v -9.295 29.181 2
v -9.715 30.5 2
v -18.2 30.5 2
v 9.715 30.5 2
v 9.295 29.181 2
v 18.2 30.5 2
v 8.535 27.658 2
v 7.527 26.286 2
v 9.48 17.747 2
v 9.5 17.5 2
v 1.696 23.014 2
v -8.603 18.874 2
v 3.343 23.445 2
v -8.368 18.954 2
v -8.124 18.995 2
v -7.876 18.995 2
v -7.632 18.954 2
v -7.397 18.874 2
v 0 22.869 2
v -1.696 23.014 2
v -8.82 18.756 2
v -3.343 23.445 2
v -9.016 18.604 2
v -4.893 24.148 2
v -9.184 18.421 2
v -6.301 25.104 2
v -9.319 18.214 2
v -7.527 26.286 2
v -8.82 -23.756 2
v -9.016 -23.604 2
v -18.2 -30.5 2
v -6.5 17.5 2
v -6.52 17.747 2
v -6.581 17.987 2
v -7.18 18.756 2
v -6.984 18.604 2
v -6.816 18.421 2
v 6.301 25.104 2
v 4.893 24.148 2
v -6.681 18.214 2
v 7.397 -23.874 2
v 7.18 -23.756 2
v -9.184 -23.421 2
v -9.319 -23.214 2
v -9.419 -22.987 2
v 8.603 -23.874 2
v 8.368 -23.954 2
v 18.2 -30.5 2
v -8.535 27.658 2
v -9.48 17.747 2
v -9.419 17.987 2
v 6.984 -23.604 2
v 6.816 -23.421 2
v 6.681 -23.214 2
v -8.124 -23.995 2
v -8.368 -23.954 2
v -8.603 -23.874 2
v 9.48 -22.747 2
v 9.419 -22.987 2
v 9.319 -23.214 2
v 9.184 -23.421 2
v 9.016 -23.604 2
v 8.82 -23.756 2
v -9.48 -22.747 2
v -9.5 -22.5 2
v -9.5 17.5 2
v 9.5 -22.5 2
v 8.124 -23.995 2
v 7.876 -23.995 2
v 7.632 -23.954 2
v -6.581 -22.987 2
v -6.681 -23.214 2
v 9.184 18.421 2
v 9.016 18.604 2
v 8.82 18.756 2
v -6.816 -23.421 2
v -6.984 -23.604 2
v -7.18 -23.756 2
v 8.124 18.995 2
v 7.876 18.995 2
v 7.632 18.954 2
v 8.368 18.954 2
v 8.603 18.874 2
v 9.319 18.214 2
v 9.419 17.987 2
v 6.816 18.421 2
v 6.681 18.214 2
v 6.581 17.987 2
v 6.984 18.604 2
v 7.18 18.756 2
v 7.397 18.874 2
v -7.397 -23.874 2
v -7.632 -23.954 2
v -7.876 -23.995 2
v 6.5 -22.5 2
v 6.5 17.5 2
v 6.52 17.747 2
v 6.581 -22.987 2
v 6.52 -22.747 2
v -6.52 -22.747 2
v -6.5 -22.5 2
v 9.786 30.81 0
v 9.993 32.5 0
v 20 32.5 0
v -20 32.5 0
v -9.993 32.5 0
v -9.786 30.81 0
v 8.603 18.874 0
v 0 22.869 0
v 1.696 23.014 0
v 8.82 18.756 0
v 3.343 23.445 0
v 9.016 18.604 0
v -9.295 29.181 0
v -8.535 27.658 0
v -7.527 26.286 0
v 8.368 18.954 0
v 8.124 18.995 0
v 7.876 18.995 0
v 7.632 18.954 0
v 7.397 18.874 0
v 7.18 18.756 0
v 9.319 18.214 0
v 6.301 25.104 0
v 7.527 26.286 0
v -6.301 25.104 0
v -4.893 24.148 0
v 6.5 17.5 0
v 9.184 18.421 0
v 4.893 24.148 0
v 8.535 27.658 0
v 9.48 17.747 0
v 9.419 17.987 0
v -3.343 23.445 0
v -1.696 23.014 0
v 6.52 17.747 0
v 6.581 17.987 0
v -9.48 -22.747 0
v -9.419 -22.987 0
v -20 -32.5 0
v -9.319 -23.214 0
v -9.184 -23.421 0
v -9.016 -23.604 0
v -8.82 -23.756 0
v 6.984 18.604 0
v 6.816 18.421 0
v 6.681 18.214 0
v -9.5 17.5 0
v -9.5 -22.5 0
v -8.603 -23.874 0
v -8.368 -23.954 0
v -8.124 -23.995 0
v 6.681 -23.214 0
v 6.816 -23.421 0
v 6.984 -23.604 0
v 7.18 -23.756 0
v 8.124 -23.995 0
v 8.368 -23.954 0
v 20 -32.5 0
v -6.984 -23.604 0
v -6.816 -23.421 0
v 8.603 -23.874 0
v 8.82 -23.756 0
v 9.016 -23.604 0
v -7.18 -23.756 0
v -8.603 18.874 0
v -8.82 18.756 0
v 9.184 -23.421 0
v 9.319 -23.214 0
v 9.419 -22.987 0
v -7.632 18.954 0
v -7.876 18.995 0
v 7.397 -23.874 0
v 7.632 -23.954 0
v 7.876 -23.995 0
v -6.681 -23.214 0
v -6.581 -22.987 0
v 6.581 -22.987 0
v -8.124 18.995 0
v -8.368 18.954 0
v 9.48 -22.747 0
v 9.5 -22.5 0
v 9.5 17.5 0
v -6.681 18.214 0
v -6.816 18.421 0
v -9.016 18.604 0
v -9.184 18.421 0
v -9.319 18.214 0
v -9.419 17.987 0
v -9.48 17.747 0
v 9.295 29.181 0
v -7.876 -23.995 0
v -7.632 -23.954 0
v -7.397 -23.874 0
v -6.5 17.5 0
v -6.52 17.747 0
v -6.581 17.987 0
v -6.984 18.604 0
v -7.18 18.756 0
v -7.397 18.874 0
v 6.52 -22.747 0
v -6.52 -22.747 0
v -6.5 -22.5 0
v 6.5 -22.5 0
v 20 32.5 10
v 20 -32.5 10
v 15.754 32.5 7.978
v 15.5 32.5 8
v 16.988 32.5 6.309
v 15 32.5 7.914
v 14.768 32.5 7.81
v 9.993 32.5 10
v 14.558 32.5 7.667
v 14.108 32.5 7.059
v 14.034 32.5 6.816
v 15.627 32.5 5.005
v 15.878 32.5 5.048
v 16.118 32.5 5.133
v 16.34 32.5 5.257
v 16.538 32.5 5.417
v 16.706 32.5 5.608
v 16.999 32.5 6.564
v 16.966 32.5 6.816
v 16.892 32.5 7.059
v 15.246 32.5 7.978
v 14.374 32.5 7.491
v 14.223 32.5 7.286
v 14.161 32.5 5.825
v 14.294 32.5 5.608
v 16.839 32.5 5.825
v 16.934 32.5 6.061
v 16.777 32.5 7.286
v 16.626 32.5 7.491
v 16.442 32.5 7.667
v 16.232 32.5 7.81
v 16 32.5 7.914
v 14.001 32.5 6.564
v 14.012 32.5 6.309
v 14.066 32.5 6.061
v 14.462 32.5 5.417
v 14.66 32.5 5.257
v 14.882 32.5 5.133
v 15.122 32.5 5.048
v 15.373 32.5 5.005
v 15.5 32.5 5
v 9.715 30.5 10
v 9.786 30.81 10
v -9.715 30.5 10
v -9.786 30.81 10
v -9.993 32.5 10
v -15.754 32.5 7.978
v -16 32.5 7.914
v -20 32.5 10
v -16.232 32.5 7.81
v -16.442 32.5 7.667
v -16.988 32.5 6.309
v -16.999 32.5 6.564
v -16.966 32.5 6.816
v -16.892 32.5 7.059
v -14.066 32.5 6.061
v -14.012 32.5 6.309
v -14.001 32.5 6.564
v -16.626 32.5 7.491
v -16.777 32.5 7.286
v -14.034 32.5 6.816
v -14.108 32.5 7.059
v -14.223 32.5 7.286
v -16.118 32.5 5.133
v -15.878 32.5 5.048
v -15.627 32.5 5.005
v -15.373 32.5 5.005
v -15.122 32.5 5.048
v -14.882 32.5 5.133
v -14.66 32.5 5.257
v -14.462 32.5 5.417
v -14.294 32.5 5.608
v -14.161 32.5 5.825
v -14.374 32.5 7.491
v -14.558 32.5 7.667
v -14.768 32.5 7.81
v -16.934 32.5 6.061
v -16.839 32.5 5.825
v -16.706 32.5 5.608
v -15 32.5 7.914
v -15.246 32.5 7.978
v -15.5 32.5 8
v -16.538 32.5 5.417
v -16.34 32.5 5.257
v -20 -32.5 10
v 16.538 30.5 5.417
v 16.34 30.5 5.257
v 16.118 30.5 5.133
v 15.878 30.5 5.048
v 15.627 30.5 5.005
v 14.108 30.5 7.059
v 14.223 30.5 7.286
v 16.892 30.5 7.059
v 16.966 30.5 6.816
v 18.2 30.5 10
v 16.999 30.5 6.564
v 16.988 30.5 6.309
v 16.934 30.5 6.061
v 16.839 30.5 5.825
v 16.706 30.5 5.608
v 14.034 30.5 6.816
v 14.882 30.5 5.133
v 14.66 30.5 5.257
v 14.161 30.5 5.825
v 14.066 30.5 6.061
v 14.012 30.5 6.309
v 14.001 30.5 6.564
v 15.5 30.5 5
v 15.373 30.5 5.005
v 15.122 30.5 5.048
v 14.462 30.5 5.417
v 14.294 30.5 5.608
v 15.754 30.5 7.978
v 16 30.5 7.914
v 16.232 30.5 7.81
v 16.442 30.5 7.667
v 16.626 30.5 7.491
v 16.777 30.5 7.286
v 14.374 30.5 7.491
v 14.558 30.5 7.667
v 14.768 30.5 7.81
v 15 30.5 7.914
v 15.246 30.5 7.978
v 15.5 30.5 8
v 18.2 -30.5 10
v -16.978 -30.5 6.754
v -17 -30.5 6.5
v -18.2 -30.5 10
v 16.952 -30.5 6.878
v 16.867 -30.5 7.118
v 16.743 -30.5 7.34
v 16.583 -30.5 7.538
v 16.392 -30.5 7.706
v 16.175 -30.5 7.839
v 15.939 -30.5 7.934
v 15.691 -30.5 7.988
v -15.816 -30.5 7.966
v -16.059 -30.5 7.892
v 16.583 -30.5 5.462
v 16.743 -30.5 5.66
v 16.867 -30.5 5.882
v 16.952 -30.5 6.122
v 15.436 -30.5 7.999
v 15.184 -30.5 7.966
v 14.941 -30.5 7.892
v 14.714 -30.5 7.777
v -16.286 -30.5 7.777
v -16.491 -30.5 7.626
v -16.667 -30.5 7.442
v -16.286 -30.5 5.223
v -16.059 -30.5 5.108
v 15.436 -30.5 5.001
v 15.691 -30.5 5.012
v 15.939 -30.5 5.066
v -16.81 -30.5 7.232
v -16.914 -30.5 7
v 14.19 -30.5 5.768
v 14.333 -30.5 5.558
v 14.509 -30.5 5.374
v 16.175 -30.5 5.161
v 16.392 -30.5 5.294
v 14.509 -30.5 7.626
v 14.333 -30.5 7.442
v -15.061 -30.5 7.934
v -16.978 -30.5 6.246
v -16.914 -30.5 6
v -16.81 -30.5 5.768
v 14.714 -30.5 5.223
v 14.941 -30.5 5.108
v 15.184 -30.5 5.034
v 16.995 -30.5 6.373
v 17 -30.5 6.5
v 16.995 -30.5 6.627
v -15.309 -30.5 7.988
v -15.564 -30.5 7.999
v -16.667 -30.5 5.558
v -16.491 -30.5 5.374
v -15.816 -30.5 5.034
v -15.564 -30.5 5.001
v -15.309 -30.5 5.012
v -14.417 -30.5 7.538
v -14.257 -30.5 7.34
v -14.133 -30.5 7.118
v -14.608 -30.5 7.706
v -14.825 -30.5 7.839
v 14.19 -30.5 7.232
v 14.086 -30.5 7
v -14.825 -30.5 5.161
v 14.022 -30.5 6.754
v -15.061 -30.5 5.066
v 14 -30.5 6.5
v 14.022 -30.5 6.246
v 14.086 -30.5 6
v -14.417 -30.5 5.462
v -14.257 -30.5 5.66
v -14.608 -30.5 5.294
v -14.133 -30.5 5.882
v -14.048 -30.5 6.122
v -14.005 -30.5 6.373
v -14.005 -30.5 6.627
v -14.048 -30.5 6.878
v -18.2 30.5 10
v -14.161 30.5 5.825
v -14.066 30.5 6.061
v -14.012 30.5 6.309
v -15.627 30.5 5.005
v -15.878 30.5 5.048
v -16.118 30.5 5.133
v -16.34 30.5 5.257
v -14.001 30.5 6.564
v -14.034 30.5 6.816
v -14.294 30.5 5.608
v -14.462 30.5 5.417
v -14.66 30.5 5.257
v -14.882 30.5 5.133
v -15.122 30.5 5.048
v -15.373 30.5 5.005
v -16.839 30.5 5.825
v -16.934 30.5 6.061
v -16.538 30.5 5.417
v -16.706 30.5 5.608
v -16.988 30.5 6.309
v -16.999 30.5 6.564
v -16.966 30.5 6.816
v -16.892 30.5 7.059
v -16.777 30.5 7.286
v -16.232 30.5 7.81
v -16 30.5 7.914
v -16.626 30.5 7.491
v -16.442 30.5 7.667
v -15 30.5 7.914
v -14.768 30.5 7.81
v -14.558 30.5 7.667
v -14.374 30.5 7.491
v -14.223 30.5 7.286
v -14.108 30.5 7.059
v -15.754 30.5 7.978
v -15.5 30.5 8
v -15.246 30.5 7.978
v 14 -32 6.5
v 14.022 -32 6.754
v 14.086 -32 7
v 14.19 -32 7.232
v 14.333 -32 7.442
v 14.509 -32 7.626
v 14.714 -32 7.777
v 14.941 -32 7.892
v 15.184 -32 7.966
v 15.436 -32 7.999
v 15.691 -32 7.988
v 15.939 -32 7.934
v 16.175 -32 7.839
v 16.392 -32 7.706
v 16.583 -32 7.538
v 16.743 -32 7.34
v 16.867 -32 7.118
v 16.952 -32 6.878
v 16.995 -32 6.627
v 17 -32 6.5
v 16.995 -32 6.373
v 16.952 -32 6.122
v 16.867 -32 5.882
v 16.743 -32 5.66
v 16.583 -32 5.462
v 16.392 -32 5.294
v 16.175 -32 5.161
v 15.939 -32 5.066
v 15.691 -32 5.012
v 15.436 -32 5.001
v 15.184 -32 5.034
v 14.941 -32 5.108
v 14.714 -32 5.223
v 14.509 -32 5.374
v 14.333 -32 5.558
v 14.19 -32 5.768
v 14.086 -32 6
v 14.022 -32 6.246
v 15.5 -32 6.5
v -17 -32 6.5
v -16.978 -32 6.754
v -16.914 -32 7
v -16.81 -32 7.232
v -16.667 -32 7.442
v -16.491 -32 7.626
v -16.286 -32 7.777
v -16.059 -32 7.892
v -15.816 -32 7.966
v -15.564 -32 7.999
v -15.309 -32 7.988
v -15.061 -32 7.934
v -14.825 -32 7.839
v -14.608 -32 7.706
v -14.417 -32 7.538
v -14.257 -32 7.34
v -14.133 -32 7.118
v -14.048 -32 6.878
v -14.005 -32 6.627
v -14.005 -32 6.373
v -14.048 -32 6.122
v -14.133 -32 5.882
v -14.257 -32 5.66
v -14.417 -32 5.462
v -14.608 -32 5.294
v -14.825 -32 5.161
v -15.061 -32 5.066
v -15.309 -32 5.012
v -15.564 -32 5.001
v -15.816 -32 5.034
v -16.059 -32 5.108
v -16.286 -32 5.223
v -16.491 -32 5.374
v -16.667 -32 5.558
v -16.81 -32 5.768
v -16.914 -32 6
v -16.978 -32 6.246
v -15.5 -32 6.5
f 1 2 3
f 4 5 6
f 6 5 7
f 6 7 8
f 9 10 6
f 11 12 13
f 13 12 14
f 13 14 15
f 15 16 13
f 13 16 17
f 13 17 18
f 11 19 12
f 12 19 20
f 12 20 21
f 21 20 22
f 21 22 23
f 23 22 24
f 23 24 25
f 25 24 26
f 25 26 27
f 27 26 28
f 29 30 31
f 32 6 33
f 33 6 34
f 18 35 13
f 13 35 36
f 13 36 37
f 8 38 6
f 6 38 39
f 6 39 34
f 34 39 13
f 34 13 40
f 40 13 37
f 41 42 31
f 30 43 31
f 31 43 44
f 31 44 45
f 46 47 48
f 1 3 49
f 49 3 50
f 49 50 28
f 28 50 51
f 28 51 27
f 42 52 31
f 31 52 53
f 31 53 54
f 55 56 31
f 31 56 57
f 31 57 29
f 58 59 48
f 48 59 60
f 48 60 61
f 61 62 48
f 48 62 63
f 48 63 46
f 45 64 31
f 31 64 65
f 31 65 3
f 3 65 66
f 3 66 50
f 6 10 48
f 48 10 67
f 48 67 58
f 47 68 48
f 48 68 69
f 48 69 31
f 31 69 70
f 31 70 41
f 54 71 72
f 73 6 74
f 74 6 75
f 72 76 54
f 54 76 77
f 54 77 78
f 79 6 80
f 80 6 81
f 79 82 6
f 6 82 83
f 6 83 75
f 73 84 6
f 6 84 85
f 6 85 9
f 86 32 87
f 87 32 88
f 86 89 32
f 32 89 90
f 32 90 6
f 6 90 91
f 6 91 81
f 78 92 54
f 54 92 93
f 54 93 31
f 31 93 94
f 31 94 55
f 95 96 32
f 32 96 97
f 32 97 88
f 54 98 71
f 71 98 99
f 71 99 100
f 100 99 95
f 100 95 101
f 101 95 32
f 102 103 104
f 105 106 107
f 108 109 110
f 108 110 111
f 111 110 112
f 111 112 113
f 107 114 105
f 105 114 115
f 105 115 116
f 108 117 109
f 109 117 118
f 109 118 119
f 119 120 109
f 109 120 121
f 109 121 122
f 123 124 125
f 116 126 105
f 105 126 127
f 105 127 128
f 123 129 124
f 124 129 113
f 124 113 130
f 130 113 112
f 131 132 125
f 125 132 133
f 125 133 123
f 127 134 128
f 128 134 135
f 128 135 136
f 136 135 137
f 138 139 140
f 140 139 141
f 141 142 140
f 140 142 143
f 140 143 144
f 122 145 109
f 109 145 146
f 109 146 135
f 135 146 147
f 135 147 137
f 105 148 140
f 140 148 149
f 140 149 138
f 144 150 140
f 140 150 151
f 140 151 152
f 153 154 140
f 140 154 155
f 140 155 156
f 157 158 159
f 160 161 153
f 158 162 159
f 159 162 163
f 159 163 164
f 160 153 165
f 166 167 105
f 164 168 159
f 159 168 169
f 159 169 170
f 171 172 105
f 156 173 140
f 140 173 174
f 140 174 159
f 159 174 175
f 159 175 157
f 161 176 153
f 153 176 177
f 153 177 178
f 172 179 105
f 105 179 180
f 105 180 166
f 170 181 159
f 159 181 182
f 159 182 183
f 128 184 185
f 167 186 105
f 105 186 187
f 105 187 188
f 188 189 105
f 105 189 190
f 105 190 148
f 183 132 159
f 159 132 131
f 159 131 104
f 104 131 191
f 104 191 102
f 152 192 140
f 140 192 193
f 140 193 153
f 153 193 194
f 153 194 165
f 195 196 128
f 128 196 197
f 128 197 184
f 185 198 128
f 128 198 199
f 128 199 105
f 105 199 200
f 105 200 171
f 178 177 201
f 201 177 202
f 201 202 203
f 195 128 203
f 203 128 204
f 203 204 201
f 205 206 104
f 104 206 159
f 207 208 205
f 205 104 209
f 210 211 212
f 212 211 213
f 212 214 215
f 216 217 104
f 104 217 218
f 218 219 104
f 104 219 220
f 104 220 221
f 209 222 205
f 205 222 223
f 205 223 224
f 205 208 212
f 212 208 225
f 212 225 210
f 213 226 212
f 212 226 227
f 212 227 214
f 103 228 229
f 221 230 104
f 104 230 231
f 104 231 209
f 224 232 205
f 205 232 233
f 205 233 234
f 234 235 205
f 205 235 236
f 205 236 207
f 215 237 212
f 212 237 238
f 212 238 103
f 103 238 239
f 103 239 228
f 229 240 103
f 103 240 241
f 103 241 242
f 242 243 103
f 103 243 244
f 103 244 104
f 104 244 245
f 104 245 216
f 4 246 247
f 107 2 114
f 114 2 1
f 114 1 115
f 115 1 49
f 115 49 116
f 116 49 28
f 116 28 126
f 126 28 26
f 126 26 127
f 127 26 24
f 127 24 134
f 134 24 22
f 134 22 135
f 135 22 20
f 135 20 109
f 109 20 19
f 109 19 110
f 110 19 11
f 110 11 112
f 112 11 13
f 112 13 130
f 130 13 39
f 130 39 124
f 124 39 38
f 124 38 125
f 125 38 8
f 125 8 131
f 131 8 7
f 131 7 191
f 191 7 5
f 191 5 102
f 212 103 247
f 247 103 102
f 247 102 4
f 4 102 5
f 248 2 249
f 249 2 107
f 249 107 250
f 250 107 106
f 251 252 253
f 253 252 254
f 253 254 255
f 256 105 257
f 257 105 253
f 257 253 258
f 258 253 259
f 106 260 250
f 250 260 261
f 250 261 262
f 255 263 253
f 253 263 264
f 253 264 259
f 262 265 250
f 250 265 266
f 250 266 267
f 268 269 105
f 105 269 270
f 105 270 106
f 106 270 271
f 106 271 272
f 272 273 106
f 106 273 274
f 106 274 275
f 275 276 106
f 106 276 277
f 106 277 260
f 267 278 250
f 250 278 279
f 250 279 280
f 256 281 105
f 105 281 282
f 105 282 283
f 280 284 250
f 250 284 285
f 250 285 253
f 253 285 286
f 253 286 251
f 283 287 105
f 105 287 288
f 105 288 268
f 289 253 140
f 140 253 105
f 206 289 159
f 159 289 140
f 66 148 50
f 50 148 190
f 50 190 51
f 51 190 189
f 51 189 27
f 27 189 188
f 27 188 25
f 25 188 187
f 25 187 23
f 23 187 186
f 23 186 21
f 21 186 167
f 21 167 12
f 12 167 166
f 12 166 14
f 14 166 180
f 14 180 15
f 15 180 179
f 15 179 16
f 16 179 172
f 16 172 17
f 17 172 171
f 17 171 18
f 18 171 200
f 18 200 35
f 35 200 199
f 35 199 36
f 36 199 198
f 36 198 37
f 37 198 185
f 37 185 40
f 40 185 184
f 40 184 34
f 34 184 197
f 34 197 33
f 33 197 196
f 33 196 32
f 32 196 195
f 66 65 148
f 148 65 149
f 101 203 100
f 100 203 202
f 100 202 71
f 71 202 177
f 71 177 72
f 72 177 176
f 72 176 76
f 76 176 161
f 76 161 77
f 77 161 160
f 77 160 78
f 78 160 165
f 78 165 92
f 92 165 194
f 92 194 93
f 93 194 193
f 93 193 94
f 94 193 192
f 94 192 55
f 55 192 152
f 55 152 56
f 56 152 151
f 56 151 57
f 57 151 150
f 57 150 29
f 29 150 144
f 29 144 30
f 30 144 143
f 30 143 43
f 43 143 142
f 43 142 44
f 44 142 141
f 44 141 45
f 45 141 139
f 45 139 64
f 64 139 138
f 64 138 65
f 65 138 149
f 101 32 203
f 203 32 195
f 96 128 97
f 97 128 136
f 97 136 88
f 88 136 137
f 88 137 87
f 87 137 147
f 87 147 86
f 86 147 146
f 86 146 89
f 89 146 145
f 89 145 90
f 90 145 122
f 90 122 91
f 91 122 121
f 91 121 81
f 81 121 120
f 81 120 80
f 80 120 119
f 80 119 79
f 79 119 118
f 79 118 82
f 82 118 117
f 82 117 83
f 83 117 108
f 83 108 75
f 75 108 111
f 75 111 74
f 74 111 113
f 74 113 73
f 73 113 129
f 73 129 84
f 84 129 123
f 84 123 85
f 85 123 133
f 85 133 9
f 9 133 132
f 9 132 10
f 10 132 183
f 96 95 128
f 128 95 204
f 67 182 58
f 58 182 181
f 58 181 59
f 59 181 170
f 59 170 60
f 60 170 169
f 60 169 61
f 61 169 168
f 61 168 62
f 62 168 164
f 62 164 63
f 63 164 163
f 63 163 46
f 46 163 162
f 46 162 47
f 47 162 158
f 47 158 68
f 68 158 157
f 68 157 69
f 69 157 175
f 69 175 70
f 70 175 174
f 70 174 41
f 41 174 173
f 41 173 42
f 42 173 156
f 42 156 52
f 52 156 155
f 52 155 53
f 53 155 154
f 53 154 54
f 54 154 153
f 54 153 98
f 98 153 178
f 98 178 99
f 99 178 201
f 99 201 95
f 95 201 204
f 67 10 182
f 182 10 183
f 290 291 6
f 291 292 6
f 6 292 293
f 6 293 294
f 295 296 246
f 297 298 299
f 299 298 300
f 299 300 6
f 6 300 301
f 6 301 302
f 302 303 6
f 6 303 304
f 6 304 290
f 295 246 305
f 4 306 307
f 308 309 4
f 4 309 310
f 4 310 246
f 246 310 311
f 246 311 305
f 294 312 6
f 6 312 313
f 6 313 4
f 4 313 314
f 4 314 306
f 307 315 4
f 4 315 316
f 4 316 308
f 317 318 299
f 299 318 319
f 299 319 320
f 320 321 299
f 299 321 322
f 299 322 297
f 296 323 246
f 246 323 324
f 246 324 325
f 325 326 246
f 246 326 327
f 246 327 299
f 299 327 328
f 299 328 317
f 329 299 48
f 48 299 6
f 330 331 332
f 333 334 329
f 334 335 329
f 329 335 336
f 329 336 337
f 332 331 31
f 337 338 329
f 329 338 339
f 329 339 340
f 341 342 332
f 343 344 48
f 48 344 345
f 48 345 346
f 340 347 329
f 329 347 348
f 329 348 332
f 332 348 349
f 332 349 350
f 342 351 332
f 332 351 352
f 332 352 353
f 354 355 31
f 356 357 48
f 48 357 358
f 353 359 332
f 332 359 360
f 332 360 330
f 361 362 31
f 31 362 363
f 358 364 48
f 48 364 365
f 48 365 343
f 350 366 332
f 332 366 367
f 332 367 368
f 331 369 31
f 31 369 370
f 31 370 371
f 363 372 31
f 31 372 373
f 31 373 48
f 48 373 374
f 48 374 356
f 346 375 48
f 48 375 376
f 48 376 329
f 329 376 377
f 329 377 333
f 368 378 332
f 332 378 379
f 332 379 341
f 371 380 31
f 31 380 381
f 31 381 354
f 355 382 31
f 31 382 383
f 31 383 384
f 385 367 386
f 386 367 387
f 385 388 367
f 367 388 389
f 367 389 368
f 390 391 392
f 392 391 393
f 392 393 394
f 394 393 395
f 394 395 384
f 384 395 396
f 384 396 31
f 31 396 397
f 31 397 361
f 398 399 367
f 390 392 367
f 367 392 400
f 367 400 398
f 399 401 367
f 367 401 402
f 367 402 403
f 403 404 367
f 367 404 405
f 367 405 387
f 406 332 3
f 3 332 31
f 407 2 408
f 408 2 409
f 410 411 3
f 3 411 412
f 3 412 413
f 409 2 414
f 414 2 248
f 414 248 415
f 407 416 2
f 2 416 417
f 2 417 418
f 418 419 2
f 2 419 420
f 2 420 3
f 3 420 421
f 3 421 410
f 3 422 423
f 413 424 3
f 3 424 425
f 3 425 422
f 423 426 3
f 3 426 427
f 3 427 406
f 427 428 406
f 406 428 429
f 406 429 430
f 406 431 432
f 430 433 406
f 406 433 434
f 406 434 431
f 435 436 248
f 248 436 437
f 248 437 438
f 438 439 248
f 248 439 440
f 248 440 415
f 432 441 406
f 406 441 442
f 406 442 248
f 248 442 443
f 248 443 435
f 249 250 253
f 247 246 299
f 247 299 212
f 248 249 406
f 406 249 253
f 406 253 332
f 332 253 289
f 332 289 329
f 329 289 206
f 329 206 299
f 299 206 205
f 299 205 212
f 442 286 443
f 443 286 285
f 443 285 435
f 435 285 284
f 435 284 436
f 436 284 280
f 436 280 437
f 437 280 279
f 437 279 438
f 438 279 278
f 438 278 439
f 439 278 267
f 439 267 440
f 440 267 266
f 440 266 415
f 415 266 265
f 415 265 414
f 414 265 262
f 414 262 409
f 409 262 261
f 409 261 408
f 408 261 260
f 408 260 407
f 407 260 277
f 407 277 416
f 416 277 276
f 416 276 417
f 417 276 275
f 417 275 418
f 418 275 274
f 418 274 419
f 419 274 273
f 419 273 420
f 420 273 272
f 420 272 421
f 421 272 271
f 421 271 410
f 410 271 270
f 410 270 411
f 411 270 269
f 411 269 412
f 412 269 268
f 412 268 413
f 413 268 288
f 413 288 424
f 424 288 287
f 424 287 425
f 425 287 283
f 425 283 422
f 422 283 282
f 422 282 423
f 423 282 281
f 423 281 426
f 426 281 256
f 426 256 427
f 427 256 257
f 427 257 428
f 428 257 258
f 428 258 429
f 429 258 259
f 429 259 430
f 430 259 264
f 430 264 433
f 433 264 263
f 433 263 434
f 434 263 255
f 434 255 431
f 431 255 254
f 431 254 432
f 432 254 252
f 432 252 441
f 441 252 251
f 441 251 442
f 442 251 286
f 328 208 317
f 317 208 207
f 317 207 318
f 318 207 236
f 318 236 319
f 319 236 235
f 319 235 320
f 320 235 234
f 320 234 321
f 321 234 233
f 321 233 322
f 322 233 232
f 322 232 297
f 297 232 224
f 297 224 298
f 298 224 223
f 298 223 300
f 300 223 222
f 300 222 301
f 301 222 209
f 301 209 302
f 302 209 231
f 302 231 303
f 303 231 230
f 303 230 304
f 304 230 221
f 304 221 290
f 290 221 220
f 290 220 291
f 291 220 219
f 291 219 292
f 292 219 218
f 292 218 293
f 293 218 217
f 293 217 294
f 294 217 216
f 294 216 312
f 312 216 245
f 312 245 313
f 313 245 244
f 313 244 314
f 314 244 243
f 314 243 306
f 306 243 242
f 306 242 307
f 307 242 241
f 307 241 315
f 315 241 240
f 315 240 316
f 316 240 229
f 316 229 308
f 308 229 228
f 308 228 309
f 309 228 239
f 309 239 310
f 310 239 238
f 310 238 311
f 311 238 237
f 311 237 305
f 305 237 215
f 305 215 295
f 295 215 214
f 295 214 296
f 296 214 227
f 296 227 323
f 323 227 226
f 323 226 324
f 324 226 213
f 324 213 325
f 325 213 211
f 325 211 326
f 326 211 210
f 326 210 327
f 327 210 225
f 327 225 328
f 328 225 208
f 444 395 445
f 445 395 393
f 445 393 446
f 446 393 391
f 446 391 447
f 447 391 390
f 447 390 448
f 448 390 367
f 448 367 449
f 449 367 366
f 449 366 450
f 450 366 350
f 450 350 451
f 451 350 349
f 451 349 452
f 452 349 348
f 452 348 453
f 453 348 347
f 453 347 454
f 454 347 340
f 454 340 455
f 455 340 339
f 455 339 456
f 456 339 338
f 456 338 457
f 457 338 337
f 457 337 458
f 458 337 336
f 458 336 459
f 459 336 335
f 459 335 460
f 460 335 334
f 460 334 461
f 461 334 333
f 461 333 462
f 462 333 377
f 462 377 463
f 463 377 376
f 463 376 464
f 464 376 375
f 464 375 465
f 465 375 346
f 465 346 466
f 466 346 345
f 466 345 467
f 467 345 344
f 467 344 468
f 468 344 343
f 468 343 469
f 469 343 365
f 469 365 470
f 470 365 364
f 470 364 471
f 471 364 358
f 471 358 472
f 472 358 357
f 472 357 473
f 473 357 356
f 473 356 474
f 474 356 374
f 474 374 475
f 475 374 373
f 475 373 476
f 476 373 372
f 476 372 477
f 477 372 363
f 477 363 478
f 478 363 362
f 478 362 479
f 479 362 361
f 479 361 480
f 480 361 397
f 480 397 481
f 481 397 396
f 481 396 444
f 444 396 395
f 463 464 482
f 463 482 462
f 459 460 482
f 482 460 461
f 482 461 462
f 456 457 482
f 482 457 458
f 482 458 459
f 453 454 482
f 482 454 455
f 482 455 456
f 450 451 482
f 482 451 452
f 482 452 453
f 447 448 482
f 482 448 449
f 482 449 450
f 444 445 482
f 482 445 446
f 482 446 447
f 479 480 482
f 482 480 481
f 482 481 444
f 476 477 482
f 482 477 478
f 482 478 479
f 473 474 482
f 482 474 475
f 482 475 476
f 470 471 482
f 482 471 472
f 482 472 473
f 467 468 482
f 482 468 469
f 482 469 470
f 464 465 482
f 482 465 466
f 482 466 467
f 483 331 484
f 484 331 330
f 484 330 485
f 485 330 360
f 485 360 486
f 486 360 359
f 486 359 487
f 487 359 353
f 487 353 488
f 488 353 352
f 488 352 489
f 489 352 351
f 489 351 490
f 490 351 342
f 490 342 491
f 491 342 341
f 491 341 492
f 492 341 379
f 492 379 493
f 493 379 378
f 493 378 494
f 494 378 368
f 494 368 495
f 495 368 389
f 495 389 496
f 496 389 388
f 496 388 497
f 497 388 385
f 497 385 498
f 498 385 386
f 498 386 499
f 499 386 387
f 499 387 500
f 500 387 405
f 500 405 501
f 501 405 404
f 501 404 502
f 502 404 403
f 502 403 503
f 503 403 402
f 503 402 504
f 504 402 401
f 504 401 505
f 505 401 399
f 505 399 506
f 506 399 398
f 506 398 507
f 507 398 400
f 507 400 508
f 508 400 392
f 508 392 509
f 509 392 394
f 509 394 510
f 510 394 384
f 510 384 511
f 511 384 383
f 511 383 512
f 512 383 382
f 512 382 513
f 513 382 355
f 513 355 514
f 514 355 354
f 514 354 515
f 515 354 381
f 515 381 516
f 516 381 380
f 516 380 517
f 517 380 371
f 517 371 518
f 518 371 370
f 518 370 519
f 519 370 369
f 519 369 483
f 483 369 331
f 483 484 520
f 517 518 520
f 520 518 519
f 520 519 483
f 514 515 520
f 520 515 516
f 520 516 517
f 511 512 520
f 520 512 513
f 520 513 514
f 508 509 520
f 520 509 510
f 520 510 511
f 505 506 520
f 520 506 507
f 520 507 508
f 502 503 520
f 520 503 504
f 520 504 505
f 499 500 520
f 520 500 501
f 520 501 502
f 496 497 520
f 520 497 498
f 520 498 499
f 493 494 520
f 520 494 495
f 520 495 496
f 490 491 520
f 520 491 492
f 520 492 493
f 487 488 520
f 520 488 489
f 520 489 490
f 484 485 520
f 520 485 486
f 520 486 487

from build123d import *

# Parameters (mm, degrees)
BOSS_EXTRUDE1_DEPTH = 2
BOSS_EXTRUDE2_DEPTH = 8
SKETCH5_R           = 1.5
CUT_EXTRUDE1_DEPTH  = 2
SKETCH6_R           = 1.5
CUT_EXTRUDE2_DEPTH  = 1.5


with BuildPart() as part:
    # Sketch1 → Boss-Extrude1 (new body)
    with BuildSketch(Plane.XY):
        with BuildLine():
            Line((-20, 32.5), (-9.993180492, 32.5))
            ThreePointArc((-9.993180492, 32.5), (0, 22.869247409), (9.993180492, 32.5))
            Line((9.993180492, 32.5), (20, 32.5))
            Line((20, 32.5), (20, -32.5))
            Line((20, -32.5), (-20, -32.5))
            Line((-20, -32.5), (-20, 32.5))
        make_face()
        with BuildLine():
            Line((-6.5, 17.5), (-6.5, -22.5))
            ThreePointArc((-6.5, -22.5), (-8, -24), (-9.5, -22.5))
            Line((-9.5, -22.5), (-9.5, 17.5))
            ThreePointArc((-9.5, 17.5), (-8, 19), (-6.5, 17.5))
        make_face(mode=Mode.SUBTRACT)
        with BuildLine():
            Line((6.5, 17.5), (6.5, -22.5))
            ThreePointArc((6.5, -22.5), (8, -24), (9.5, -22.5))
            Line((9.5, -22.5), (9.5, 17.5))
            ThreePointArc((9.5, 17.5), (8, 19), (6.5, 17.5))
        make_face(mode=Mode.SUBTRACT)
    extrude(amount=BOSS_EXTRUDE1_DEPTH)

    # Sketch2 → Boss-Extrude2 (add)
    with BuildSketch(Plane.XY.offset(2)):
        with BuildLine():
            Line((-20, 32.5), (-9.993180492, 32.5))
            ThreePointArc((-9.993180492, 32.5), (-9.904839947, 31.492967776), (-9.715280064, 30.5))
            Line((-9.715280064, 30.5), (-18.2, 30.5))
            Line((-18.2, 30.5), (-18.2, -30.5))
            Line((-18.2, -30.5), (18.2, -30.5))
            Line((18.2, -30.5), (18.2, 30.5))
            Line((18.2, 30.5), (9.715280064, 30.5))
            ThreePointArc((9.715280064, 30.5), (9.904839947, 31.492967776), (9.993180492, 32.5))
            Line((9.993180492, 32.5), (20, 32.5))
            Line((20, 32.5), (20, 30.5))
            Line((20, 30.5), (20, -30.5))
            Line((20, -30.5), (20, -32.5))
            Line((20, -32.5), (-20, -32.5))
            Line((-20, -32.5), (-20, -30.5))
            Line((-20, -30.5), (-20, 30.5))
            Line((-20, 30.5), (-20, 32.5))
        make_face()
    extrude(amount=BOSS_EXTRUDE2_DEPTH)

    # Sketch5 → Cut-Extrude1 (cut)
    with BuildSketch(Plane(origin=(0, 32.5, 0), x_dir=(1, 0, 0), z_dir=(0, 1, 0))):
        with Locations(Location((-15.5, -6.5, 0), (0, 0, 270))):
            Circle(SKETCH5_R)
        with Locations(Location((15.5, -6.5, 0), (0, 0, 90))):
            Circle(SKETCH5_R)
    extrude(amount=-CUT_EXTRUDE1_DEPTH, mode=Mode.SUBTRACT)

    # Sketch6 → Cut-Extrude2 (cut)
    with BuildSketch(Plane(origin=(0, -30.5, 0), x_dir=(1, 0, 0), z_dir=(0, 1, 0))):
        with Locations(Location((-15.5, -6.5, 0), (0, 0, 270))):
            Circle(SKETCH6_R)
        with Locations(Location((15.5, -6.5, 0), (0, 0, 90))):
            Circle(SKETCH6_R)
    extrude(amount=-CUT_EXTRUDE2_DEPTH, mode=Mode.SUBTRACT)


solid = part.part
